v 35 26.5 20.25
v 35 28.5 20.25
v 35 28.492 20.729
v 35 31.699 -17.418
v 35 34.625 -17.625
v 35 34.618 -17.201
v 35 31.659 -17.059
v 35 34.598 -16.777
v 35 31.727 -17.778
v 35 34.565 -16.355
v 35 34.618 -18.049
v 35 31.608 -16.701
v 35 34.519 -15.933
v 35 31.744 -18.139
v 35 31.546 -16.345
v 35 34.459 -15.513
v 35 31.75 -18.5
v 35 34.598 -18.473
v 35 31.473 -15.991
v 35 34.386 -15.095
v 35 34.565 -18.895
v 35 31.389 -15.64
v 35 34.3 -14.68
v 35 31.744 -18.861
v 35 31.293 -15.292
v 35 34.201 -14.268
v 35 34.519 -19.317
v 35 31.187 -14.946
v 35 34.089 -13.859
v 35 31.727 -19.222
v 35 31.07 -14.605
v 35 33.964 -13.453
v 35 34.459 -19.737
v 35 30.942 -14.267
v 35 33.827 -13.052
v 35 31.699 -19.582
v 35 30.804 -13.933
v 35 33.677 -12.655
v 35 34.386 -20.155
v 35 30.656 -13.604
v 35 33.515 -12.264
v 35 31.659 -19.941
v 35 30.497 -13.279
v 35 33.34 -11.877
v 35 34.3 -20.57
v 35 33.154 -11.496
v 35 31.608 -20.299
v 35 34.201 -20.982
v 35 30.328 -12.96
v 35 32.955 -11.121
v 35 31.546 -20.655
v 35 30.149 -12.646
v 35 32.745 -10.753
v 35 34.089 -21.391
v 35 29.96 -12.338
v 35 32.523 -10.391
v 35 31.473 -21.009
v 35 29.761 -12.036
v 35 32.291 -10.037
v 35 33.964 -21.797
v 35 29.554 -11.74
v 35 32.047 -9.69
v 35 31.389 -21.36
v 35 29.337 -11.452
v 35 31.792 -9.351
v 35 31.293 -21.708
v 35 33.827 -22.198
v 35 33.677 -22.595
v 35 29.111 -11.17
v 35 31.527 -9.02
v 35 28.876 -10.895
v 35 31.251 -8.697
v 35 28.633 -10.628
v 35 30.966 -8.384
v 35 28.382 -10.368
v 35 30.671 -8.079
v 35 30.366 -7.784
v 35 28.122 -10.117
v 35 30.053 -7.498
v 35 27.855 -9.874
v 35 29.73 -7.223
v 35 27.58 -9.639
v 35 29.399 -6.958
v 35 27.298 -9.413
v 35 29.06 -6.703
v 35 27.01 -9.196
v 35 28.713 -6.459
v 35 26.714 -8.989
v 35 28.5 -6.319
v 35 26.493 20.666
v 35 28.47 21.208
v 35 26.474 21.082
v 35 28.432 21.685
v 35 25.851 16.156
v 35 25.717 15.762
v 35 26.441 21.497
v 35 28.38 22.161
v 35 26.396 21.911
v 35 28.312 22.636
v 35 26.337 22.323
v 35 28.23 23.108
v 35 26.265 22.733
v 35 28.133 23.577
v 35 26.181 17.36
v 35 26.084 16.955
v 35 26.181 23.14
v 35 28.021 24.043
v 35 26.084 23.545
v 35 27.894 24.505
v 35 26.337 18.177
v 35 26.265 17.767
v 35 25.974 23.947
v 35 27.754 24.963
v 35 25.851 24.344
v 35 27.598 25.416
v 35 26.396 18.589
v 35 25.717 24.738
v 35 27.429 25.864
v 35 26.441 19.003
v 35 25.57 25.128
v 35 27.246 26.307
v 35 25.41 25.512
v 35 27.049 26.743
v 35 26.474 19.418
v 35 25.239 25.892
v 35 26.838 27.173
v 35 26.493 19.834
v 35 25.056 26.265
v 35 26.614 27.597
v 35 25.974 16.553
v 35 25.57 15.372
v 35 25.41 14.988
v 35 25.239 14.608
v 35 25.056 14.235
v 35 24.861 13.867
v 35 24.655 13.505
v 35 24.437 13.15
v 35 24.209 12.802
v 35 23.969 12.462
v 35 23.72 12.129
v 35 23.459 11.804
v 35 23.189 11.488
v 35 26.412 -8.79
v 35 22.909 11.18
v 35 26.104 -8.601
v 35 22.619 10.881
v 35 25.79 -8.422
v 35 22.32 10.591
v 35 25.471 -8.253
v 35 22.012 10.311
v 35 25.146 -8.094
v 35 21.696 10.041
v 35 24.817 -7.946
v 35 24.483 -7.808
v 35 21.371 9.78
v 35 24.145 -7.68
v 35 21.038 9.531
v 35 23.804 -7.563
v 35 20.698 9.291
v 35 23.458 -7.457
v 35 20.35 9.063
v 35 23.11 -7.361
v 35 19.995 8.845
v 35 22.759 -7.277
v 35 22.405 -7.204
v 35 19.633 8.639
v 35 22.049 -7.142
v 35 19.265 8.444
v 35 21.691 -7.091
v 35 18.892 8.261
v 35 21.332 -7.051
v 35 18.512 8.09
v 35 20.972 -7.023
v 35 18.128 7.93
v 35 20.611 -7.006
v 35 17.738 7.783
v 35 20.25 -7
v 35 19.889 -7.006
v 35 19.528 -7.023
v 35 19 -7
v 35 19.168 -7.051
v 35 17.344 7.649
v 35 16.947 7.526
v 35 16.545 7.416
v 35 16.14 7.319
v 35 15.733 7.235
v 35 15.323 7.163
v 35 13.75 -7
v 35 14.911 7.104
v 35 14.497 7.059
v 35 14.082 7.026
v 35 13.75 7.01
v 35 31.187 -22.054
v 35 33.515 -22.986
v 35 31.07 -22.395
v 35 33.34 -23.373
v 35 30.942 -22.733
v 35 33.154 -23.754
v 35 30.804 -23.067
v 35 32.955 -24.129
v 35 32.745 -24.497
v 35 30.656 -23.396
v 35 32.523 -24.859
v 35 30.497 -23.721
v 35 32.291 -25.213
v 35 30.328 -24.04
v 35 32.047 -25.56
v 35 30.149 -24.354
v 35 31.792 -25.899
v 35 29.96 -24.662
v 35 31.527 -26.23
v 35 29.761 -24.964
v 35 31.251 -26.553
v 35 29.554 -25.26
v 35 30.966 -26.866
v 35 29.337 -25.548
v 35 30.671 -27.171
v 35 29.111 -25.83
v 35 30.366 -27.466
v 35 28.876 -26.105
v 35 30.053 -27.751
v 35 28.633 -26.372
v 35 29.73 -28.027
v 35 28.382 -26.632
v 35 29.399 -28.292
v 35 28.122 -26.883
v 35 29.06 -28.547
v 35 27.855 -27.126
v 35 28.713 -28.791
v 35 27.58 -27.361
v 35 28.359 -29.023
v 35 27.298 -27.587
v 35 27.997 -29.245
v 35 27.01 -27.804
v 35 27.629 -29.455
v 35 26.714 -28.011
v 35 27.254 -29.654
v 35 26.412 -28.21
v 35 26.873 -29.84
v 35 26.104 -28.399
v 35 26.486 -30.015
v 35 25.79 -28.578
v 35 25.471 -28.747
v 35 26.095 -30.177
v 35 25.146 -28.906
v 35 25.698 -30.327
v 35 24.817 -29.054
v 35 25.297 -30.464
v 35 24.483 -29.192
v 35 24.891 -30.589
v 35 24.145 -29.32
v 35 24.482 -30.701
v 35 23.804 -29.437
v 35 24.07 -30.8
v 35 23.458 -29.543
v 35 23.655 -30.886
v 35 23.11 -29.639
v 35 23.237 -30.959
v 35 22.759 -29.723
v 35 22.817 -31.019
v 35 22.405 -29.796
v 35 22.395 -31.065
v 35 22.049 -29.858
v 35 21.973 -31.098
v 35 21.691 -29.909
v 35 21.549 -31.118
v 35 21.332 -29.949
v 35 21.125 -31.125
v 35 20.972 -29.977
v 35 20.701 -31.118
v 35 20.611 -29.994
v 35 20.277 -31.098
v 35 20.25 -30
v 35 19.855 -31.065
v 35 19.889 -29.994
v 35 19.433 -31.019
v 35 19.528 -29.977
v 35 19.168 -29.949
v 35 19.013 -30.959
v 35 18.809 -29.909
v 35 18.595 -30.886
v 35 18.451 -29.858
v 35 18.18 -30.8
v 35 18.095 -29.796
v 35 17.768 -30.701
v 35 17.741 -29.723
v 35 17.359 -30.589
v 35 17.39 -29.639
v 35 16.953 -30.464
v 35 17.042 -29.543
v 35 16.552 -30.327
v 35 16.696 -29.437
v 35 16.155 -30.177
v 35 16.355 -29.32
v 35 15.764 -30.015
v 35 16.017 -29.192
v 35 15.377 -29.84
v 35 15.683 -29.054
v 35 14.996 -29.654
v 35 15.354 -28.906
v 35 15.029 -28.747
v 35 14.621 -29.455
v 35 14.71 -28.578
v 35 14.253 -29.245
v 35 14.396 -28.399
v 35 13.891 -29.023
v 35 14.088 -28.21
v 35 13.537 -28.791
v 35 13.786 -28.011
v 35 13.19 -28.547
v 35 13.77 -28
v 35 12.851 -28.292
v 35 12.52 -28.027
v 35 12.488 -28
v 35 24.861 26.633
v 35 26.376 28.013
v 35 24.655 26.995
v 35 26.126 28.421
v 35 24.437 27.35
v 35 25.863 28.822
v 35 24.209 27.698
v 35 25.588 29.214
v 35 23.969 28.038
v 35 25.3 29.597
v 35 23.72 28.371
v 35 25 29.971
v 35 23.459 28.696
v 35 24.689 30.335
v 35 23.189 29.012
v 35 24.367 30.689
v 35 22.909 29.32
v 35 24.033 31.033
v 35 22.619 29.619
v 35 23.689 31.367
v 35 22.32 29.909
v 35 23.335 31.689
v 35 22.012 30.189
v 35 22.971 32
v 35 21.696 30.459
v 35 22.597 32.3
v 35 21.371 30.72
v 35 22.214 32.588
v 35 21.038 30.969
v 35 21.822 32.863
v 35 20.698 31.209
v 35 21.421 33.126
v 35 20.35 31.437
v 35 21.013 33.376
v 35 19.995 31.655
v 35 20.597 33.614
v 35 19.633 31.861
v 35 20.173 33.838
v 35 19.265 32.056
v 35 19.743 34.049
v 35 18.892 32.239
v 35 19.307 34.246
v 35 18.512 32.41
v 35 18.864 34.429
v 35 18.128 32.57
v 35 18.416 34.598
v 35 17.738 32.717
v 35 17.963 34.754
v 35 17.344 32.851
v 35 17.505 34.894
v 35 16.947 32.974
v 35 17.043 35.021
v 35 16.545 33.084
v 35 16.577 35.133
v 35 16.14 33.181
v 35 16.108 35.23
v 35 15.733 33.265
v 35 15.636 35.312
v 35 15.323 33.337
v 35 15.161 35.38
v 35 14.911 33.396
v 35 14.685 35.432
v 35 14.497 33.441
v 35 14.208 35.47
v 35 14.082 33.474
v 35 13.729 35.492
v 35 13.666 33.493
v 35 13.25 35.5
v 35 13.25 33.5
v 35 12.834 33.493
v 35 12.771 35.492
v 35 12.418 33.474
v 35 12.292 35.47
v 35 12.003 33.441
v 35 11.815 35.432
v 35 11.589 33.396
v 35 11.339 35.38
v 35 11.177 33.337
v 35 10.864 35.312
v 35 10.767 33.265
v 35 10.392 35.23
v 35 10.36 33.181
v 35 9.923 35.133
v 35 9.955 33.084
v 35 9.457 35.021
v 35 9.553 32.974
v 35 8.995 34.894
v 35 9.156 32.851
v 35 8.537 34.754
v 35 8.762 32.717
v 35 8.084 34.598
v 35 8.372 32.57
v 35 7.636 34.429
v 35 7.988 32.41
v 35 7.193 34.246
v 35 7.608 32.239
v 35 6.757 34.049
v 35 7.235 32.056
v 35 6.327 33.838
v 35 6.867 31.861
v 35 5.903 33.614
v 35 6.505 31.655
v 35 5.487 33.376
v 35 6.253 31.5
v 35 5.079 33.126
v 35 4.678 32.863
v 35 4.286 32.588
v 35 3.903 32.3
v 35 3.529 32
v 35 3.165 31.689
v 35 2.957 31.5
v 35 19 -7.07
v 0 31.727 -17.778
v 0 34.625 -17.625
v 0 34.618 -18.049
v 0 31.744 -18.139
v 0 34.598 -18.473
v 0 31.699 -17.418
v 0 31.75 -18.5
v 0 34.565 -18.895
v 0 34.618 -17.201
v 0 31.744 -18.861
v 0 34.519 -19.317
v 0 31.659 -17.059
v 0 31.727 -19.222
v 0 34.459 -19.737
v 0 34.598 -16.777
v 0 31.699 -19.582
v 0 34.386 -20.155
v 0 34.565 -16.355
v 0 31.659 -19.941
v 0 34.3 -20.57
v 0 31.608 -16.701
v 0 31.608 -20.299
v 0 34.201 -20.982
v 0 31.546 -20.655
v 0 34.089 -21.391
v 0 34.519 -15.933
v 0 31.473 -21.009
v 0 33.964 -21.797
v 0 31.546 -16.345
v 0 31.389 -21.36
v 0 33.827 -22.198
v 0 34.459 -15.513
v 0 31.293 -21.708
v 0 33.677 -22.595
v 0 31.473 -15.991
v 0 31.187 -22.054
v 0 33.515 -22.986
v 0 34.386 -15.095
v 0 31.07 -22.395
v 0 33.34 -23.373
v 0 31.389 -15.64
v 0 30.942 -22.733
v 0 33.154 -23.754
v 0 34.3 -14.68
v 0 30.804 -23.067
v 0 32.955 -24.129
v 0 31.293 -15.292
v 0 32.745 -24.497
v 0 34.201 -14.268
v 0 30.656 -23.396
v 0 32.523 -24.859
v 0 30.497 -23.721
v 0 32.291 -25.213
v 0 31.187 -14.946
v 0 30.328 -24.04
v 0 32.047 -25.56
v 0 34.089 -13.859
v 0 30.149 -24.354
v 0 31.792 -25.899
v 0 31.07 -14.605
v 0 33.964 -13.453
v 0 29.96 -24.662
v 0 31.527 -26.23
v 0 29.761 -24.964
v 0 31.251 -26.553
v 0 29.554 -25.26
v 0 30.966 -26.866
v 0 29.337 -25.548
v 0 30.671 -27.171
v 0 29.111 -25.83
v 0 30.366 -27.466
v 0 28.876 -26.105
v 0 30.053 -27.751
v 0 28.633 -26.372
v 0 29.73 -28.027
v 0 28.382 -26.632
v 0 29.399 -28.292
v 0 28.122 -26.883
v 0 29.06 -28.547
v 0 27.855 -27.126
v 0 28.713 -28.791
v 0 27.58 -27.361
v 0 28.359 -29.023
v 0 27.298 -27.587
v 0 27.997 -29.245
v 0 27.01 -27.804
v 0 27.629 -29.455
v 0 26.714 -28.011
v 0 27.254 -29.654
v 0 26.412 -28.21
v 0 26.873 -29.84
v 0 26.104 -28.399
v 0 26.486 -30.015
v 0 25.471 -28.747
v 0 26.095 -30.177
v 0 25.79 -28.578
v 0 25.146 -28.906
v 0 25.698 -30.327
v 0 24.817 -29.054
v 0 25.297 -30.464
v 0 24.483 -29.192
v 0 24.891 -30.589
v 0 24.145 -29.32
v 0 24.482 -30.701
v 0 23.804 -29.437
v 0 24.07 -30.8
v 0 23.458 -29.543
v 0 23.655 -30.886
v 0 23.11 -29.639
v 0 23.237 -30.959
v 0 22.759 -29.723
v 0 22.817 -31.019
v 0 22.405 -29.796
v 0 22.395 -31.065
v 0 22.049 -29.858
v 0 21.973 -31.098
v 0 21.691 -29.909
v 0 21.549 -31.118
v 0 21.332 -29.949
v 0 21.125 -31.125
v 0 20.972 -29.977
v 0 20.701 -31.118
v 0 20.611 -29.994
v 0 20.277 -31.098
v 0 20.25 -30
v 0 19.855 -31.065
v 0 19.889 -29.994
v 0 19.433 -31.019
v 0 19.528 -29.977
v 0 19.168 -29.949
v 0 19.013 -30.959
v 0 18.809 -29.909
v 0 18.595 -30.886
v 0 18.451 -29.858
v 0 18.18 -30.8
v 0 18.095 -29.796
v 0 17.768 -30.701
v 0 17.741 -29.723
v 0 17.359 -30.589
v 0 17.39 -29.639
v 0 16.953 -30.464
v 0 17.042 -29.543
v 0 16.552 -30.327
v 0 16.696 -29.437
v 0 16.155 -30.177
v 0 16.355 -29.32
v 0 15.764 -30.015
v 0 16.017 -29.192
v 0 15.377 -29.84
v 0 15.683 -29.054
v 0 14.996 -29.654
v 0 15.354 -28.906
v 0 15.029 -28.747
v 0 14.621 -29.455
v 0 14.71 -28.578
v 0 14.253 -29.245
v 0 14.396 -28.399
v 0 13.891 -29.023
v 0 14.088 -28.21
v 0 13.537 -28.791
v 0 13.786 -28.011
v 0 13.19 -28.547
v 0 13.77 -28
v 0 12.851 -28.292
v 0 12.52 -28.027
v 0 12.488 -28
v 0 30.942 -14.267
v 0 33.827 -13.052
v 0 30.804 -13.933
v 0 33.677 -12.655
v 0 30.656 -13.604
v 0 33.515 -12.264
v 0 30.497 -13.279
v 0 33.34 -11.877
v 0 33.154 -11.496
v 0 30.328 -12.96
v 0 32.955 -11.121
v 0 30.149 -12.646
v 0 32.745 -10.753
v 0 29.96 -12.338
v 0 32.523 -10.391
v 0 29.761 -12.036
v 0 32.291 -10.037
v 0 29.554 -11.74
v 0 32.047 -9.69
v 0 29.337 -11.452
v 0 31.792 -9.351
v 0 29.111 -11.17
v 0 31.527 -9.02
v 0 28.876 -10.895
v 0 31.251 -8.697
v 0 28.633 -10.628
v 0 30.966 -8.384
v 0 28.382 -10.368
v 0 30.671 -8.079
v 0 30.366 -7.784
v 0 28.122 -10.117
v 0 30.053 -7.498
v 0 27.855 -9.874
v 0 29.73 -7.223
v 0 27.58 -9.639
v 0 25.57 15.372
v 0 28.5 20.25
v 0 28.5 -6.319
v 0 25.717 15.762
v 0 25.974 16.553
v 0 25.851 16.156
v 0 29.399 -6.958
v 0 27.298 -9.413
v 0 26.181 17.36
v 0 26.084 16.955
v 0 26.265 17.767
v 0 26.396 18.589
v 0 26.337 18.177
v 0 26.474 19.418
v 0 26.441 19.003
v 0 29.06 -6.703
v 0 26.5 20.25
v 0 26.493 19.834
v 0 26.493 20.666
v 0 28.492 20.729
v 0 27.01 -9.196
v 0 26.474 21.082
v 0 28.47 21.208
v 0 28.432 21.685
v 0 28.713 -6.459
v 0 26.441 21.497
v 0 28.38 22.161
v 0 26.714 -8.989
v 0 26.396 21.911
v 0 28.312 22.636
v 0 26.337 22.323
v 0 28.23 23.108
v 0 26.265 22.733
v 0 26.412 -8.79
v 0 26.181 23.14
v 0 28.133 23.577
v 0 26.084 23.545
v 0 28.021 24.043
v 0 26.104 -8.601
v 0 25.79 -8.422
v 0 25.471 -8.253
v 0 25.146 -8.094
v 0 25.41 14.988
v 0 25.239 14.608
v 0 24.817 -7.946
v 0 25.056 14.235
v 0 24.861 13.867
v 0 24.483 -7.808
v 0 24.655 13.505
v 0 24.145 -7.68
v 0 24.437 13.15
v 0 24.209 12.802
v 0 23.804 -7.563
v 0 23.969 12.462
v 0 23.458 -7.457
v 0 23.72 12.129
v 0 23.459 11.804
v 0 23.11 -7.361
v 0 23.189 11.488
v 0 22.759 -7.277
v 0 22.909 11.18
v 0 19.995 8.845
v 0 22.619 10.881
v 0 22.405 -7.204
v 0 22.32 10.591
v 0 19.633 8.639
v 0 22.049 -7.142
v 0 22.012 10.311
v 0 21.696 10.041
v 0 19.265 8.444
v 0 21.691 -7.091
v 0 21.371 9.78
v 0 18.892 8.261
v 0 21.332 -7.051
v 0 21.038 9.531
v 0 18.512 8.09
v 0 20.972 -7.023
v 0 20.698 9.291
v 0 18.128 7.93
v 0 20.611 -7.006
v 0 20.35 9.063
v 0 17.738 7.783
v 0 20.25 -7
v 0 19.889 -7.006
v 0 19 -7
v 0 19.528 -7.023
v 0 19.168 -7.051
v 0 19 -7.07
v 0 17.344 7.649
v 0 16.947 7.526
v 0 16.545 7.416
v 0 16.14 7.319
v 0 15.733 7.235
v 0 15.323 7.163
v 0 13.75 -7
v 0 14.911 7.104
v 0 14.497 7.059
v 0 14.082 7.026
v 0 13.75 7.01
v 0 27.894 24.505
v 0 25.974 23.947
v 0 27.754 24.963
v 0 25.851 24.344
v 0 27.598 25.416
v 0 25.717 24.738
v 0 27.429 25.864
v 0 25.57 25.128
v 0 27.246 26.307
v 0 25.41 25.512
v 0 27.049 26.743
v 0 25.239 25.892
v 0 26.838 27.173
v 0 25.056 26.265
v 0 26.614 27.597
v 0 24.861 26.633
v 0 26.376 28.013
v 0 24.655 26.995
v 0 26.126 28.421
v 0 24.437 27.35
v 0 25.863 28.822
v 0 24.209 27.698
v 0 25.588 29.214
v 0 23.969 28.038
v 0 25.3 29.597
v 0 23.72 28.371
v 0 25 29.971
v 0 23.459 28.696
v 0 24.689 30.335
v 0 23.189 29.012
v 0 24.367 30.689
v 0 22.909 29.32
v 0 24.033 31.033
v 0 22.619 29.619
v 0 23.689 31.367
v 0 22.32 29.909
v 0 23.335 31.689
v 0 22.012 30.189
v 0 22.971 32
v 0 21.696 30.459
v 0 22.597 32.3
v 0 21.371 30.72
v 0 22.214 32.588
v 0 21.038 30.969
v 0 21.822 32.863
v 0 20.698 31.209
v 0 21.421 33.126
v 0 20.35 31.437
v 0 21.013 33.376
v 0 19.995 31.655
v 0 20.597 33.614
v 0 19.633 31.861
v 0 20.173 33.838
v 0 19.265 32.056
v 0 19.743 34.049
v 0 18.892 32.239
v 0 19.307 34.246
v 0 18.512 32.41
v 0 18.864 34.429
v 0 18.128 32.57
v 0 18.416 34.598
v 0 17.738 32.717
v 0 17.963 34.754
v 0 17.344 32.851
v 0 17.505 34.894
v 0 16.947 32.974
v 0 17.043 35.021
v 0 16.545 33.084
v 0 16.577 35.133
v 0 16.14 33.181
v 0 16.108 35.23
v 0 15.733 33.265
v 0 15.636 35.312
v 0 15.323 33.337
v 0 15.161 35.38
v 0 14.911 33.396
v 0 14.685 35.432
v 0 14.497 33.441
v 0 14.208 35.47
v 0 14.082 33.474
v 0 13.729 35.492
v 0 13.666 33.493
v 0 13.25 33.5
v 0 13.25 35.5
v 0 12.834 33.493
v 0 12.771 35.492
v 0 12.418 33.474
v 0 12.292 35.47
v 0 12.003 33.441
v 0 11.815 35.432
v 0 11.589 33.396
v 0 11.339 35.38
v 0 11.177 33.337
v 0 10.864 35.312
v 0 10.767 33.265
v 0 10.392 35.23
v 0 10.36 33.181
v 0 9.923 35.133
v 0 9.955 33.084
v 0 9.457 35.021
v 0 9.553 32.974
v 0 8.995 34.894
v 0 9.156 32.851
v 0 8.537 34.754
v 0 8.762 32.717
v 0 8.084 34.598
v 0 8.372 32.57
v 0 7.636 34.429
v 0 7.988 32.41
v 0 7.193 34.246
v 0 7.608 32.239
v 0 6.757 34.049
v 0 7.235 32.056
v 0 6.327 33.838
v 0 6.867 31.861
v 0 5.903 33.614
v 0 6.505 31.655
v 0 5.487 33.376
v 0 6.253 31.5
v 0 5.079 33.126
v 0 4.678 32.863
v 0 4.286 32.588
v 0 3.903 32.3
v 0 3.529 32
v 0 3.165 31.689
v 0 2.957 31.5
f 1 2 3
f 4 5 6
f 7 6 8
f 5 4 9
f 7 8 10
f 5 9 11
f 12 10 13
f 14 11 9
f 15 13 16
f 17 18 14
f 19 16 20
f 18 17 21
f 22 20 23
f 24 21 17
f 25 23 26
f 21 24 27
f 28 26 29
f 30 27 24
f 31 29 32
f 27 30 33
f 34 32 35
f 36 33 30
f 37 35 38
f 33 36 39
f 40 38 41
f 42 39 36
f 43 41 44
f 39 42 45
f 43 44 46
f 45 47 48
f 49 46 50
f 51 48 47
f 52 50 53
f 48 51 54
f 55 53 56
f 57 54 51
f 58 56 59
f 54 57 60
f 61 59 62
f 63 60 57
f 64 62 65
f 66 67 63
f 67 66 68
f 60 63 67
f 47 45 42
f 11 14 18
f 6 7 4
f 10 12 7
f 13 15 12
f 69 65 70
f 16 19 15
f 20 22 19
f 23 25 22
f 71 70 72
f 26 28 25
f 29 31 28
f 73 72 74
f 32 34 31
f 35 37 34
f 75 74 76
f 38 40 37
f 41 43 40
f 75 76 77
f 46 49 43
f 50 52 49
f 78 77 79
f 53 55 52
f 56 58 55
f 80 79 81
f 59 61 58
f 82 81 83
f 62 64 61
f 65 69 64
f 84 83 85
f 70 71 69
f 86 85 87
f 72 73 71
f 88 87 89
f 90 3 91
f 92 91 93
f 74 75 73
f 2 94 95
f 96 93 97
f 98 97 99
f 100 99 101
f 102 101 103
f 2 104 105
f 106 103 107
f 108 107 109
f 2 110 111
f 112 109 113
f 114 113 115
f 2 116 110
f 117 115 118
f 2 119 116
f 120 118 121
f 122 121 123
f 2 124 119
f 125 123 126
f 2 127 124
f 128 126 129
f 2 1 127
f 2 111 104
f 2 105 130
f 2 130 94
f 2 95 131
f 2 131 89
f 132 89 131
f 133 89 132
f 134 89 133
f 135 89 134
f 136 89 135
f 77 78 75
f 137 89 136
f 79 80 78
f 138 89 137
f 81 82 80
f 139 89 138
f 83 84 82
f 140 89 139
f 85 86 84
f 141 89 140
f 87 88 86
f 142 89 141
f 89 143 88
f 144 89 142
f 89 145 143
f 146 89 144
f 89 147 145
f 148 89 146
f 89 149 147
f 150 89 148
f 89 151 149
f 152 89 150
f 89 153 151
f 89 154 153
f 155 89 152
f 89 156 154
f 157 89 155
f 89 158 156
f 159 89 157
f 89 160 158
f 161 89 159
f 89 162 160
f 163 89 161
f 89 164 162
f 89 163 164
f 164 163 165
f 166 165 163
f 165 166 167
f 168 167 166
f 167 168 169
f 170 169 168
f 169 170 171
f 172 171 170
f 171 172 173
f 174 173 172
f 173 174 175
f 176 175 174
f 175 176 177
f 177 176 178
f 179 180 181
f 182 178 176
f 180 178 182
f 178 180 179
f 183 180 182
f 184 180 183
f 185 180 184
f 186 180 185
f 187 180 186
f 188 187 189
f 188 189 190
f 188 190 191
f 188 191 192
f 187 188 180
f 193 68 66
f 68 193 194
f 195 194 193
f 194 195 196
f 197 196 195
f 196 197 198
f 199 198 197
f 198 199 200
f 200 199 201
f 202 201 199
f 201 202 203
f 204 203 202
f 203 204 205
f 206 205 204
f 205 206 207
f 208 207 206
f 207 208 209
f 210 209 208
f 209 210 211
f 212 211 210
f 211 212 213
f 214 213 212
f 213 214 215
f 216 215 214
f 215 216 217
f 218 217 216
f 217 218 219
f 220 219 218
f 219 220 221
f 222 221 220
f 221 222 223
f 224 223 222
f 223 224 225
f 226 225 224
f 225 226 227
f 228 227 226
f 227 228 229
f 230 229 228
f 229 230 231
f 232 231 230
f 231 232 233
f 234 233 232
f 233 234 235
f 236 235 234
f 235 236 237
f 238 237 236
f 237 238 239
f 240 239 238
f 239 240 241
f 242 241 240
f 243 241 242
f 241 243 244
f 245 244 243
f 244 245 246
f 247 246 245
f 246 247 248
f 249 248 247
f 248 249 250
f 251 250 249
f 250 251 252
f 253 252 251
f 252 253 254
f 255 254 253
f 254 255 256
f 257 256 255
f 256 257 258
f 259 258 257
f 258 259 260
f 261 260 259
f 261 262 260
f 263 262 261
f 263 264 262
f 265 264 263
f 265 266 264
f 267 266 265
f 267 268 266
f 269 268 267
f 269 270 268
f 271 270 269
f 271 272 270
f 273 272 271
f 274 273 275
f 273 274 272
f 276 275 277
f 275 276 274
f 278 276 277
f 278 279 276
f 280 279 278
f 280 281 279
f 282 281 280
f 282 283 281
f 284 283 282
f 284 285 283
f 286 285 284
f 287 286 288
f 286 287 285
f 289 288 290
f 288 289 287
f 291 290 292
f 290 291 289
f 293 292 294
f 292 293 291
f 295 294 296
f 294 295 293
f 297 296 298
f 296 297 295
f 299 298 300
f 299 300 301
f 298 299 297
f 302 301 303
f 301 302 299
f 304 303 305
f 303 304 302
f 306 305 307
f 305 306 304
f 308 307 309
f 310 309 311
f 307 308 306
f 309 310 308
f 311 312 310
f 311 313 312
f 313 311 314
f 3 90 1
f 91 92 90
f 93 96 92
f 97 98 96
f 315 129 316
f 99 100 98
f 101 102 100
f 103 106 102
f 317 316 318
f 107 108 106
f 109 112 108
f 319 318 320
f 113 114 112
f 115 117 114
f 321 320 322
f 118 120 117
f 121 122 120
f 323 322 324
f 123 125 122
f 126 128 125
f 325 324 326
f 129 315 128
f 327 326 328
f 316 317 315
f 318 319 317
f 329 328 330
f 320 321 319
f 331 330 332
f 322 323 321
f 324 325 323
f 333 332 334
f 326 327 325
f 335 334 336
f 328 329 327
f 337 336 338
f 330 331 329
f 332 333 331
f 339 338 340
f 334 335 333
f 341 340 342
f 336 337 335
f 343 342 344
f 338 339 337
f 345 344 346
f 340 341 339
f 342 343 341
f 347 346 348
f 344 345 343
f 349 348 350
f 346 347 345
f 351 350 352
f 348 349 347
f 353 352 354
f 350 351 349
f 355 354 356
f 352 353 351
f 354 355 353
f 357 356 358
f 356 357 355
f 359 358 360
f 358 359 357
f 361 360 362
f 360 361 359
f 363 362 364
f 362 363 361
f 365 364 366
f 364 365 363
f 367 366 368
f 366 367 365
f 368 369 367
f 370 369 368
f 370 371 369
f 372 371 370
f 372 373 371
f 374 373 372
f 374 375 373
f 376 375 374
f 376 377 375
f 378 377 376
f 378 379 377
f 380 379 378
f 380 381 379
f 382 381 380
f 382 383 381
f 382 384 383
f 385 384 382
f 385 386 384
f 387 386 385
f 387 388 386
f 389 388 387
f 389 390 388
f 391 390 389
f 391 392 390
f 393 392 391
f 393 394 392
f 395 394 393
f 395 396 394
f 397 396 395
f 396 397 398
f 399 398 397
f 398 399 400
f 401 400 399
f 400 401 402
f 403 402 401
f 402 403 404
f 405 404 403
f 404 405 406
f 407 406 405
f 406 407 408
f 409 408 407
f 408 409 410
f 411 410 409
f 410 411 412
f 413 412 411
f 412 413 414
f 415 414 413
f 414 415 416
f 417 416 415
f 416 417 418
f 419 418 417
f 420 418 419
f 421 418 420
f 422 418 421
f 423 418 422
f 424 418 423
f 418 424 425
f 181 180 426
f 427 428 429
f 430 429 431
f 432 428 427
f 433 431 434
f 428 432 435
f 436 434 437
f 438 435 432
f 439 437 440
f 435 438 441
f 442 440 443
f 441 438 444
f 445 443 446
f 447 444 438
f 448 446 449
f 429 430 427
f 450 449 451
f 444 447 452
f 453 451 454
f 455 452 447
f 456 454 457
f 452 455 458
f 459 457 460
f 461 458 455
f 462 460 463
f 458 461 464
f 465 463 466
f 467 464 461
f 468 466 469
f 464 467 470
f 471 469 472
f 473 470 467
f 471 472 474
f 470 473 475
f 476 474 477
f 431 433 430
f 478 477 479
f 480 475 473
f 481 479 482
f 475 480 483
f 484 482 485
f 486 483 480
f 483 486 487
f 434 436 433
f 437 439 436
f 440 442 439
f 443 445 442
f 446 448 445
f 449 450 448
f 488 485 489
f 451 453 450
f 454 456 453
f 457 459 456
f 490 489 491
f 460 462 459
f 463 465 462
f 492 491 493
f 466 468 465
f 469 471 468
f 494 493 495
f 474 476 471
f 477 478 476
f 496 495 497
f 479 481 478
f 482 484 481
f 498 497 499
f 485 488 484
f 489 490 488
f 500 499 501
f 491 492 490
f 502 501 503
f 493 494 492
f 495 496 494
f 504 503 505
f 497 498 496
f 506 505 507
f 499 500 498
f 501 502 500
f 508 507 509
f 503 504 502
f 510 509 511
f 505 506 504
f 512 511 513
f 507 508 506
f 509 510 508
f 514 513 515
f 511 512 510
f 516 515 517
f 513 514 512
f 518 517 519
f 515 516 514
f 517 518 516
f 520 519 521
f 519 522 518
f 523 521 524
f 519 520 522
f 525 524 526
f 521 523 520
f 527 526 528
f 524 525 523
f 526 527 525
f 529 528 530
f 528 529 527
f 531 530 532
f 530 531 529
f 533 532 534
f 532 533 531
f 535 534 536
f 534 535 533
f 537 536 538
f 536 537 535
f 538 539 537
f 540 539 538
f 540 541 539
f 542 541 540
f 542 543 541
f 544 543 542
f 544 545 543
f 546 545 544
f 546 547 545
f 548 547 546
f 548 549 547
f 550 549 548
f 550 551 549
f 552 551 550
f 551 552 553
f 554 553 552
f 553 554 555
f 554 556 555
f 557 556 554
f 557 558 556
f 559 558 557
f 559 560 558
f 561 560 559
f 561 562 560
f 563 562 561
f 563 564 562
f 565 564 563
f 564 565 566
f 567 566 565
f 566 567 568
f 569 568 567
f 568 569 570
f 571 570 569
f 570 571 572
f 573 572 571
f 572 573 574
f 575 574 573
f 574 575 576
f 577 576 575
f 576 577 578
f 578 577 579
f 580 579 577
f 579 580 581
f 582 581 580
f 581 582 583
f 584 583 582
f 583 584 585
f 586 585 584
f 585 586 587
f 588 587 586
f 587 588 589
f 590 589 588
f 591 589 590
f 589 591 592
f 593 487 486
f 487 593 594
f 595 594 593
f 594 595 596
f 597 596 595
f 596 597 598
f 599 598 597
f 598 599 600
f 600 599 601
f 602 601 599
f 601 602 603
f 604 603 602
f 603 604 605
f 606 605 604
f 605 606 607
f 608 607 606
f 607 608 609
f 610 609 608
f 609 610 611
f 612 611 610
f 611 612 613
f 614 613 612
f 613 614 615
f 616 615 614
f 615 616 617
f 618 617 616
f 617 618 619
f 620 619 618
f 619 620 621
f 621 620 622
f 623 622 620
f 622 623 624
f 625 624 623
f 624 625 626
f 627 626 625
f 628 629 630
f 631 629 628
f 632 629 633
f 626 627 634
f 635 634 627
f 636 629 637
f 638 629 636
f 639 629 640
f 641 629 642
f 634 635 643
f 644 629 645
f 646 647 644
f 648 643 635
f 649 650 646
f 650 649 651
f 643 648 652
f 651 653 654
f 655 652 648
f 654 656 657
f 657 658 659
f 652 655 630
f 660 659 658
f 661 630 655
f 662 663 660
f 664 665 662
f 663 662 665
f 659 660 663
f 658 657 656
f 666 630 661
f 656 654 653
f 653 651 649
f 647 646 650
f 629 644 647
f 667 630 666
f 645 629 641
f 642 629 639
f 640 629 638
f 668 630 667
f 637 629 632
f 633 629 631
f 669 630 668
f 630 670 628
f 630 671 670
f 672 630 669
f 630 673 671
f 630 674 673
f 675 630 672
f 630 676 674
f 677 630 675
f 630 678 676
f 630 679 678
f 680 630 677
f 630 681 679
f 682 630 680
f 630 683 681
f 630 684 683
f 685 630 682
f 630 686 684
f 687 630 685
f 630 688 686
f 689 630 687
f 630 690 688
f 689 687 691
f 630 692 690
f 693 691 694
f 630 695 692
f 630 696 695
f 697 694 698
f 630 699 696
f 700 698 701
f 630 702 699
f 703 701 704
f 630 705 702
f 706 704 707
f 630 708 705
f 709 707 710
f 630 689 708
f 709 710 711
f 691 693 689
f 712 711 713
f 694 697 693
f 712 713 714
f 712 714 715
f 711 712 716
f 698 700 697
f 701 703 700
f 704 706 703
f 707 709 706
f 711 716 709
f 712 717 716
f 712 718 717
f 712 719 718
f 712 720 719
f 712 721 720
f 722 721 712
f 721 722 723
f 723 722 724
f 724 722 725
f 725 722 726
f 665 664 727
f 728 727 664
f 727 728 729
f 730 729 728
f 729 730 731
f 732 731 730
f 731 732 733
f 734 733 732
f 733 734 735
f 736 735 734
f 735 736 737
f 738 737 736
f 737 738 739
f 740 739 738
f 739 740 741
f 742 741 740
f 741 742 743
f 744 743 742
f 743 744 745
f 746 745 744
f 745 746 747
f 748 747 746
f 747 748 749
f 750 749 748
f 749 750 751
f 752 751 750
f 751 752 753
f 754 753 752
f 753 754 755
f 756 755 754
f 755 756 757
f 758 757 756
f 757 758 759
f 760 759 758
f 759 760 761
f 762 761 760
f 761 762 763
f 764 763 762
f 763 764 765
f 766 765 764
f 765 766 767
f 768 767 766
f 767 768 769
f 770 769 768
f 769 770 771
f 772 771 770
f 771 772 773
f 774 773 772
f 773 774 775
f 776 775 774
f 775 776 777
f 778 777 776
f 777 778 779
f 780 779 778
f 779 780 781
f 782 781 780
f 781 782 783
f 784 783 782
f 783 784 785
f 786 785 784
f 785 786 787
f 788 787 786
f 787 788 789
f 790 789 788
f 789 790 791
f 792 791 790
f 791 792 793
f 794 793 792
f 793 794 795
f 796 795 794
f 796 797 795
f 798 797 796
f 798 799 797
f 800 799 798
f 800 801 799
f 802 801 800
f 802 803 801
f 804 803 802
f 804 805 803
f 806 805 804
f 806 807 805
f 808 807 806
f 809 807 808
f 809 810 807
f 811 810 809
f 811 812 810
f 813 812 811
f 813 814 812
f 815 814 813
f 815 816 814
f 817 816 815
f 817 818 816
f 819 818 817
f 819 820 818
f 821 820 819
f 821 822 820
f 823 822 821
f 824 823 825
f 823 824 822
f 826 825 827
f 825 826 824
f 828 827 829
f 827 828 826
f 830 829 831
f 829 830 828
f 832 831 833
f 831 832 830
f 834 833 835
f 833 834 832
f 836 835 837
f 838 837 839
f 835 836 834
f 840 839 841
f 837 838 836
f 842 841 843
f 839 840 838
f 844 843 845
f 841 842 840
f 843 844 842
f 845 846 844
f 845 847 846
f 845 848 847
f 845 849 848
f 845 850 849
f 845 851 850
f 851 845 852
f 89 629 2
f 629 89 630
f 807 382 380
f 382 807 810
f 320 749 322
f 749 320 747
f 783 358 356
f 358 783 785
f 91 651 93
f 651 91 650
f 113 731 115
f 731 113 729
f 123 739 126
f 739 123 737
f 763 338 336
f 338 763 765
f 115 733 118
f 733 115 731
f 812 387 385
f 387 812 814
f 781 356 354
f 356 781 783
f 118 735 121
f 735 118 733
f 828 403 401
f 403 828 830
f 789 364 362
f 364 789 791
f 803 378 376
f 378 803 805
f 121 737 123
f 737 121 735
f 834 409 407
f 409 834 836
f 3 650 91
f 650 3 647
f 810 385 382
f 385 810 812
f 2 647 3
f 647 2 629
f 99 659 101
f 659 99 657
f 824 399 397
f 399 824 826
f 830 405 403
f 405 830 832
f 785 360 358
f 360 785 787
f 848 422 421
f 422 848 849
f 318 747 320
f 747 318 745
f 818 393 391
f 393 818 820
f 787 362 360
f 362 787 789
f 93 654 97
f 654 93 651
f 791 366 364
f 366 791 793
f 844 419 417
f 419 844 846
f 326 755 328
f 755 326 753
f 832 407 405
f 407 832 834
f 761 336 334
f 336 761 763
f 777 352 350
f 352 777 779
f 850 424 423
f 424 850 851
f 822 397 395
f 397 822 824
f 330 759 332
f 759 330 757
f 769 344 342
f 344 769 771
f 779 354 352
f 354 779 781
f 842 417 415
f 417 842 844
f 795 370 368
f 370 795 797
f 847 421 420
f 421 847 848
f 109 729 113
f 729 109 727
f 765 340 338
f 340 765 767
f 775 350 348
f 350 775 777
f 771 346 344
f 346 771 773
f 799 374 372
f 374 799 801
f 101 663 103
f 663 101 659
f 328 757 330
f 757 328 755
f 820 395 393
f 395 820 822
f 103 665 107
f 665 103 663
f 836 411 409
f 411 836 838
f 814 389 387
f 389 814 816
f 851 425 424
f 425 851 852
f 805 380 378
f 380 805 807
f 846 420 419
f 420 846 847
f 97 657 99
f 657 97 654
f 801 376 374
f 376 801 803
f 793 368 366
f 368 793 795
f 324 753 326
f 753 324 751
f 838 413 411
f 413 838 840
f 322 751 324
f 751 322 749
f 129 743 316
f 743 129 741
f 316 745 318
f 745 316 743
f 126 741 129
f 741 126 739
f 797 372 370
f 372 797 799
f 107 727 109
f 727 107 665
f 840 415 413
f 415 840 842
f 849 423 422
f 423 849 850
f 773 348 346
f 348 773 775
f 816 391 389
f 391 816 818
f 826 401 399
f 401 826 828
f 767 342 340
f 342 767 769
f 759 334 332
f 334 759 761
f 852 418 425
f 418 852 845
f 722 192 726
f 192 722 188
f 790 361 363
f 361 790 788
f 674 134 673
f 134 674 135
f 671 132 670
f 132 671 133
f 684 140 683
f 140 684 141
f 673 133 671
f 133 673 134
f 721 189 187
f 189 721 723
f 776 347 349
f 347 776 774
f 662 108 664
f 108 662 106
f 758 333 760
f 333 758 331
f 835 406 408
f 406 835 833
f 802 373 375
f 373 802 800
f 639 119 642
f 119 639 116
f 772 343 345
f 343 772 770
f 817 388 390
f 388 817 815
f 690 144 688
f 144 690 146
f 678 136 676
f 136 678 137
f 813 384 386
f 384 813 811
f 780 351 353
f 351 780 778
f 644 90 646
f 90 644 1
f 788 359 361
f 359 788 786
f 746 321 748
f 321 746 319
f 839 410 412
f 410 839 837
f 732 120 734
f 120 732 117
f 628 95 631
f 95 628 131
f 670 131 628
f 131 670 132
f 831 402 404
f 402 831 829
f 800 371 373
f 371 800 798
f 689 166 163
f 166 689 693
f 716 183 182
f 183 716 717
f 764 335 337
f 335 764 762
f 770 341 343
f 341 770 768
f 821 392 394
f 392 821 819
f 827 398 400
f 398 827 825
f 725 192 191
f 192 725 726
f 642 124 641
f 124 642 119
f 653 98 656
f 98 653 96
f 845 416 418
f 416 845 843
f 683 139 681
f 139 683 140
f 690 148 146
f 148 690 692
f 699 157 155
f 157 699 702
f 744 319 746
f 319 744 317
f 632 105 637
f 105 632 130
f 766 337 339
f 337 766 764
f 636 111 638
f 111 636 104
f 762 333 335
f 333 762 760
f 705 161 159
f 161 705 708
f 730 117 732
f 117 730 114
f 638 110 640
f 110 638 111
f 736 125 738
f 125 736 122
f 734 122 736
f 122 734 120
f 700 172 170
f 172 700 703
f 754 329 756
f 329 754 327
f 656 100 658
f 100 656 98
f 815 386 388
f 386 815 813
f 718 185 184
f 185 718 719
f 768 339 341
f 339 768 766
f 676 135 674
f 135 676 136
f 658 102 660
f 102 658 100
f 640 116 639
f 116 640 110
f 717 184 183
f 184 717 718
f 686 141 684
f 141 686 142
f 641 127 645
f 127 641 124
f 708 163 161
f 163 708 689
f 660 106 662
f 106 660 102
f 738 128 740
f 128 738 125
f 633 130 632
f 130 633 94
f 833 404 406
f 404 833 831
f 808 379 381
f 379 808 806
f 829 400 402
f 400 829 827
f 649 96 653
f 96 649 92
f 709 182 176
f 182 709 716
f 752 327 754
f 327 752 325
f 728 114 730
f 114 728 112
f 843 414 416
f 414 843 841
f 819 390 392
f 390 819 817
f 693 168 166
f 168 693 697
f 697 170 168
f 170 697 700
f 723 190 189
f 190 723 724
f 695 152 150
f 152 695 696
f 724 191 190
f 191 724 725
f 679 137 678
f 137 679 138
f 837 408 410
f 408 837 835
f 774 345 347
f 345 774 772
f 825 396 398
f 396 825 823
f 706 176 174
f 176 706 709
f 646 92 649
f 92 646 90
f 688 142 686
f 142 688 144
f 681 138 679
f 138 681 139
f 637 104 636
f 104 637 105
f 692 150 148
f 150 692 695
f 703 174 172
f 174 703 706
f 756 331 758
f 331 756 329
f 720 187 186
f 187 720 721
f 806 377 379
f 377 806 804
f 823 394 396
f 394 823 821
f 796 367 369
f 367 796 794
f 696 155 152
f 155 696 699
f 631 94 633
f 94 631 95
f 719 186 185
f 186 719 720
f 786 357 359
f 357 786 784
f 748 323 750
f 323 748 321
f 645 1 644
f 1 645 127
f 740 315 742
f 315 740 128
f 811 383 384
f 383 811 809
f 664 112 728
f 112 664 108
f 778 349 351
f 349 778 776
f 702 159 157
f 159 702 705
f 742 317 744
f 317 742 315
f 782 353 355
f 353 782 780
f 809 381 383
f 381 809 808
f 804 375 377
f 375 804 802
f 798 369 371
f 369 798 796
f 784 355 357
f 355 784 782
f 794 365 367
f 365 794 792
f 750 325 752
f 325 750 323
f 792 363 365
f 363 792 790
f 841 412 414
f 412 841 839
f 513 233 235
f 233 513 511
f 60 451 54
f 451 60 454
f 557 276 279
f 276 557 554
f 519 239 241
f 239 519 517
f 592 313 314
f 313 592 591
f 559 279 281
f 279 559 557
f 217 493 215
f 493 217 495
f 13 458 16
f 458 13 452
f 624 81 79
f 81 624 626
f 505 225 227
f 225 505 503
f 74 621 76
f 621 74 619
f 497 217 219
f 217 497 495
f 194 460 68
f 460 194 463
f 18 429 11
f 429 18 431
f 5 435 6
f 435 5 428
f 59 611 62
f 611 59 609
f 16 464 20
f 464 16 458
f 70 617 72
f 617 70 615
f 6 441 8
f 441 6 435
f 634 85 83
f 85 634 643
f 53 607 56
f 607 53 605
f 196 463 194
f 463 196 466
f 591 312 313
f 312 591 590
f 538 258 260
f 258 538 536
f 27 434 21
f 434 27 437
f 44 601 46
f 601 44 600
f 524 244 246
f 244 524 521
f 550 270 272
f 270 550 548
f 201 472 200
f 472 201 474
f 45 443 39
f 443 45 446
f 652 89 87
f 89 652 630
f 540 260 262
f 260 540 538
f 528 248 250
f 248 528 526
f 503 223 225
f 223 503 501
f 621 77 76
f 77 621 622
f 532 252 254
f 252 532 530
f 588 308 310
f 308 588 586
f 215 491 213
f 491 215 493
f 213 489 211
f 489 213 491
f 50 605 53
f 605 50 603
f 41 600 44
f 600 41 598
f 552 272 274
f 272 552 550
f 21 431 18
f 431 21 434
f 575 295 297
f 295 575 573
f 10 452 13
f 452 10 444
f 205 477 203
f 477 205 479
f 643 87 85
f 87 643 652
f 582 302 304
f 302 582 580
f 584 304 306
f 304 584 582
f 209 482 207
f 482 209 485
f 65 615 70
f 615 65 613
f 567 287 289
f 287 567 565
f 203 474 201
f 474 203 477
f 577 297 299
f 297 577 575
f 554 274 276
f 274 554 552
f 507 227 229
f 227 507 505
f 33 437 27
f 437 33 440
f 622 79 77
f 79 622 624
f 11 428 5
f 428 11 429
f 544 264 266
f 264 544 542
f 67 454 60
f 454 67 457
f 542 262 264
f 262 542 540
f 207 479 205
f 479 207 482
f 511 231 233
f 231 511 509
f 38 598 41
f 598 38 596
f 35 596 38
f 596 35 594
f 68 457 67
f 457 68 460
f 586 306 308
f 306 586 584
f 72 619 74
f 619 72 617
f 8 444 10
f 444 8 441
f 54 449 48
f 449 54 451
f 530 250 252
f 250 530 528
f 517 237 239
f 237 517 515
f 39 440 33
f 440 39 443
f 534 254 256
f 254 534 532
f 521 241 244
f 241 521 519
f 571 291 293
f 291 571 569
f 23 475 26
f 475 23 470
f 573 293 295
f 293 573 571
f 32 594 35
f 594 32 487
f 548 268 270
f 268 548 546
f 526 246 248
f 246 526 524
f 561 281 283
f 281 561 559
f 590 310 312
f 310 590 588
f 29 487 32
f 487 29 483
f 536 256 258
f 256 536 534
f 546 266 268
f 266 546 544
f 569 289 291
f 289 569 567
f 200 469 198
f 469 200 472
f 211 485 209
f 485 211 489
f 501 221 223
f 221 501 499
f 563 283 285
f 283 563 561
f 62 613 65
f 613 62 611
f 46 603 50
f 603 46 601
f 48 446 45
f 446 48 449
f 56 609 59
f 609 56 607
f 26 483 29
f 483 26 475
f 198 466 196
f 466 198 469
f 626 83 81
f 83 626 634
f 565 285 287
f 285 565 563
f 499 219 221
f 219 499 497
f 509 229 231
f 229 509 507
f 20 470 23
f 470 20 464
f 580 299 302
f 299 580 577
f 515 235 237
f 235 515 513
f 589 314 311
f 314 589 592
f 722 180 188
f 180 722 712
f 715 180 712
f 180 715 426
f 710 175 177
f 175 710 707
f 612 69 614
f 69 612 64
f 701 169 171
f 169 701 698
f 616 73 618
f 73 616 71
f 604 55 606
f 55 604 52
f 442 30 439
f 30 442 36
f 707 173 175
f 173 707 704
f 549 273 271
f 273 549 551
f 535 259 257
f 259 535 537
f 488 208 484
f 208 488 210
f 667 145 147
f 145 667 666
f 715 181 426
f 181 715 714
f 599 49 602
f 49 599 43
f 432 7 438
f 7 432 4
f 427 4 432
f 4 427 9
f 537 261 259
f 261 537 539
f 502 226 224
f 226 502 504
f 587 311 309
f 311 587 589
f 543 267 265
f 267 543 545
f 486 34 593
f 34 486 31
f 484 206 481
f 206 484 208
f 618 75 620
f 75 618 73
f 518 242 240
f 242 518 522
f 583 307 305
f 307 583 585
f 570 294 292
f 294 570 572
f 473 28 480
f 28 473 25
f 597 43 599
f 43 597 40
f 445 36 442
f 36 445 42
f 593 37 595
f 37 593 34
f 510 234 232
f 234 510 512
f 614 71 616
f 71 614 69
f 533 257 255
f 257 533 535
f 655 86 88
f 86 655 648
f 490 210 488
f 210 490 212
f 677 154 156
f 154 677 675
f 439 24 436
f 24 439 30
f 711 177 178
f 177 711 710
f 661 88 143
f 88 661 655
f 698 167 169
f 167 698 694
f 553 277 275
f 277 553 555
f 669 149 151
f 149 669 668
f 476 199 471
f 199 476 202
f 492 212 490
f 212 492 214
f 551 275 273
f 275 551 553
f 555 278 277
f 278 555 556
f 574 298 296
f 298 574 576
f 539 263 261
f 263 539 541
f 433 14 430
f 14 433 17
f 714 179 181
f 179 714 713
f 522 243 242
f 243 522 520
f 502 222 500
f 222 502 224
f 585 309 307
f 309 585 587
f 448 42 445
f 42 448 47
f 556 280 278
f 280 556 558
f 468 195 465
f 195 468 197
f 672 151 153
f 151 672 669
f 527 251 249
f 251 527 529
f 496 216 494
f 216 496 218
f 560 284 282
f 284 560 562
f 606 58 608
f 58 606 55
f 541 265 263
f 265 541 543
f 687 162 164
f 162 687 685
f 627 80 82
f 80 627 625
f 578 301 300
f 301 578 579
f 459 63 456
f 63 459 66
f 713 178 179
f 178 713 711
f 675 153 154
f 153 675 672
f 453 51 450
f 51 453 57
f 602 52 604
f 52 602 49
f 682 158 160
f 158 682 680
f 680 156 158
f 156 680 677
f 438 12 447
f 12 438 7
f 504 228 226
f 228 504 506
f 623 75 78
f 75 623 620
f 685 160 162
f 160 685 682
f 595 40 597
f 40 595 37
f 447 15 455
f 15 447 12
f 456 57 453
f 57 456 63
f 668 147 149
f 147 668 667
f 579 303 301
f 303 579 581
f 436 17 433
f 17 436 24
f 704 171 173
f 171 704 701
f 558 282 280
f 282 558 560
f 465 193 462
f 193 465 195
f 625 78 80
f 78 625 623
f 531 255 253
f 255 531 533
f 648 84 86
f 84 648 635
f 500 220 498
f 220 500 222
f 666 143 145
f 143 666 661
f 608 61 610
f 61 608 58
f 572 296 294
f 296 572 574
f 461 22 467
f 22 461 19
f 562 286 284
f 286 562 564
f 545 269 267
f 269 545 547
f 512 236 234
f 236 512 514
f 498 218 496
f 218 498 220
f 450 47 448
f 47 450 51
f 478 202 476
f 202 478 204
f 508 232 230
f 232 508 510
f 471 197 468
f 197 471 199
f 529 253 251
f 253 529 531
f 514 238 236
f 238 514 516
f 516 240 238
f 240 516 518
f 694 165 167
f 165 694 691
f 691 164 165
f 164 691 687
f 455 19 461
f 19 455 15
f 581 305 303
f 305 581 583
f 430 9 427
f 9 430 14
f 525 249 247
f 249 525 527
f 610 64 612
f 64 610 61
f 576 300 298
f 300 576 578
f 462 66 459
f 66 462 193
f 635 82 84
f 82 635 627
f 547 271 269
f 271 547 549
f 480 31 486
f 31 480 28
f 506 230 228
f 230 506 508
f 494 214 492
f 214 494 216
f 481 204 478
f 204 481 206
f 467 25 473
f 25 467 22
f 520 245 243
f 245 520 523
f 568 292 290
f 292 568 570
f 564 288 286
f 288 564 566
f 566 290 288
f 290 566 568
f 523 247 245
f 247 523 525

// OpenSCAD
chassis_tube_d = 26.5;
axle_tube_d = 23;
holder_w = 140;
grip_w = holder_w/4;
difference_offset=[0,7,14];
ws=2;
cable_extra_space=[9,3];
difference_to_upper_tube=135;	//intentionally a bit taller to have center of mass centered

$fn=$preview ? 50 : 200;

module clip(w_total, w_clip, h, tube_d, cube_offset=0) {
	difference(){
		upper=[0, (chassis_tube_d)/2, h+tube_d/2];
		union() {
			translate([0, cube_offset, 0])
				cube([w_total, chassis_tube_d+ws, h+tube_d/2]);
			//clip
			translate(upper+[(w_total-w_clip)/2,-cube_offset/8,cube_offset/8]) rotate([0, 90, 0])
				cylinder(d=tube_d+2*ws,h=w_clip);
				
		}
		//side cut
		translate([-.5, -.5+cube_offset-ws, h])
			cube([w_total+1, tube_d/2+1+abs(cube_offset)+ws, tube_d-ws]);
		//tube
		translate(upper-[.5,0,0]) rotate([0, 90, 0])
			cylinder(d=tube_d,h=w_total+1);
	}
}

difference(){
	union(){
		clip(grip_w, grip_w, difference_offset.z/2, chassis_tube_d);
		translate([0, difference_offset.y, 0]) mirror([0, 0, 1])
			clip(grip_w, grip_w, difference_offset.z/2, axle_tube_d, -difference_offset.y);
	}
	//make this lighter
	translate([-.5, -.5, -(difference_offset.z/2+.5)])
		cube([grip_w+1, (chassis_tube_d)/2+1, difference_offset.z+1]);
}
